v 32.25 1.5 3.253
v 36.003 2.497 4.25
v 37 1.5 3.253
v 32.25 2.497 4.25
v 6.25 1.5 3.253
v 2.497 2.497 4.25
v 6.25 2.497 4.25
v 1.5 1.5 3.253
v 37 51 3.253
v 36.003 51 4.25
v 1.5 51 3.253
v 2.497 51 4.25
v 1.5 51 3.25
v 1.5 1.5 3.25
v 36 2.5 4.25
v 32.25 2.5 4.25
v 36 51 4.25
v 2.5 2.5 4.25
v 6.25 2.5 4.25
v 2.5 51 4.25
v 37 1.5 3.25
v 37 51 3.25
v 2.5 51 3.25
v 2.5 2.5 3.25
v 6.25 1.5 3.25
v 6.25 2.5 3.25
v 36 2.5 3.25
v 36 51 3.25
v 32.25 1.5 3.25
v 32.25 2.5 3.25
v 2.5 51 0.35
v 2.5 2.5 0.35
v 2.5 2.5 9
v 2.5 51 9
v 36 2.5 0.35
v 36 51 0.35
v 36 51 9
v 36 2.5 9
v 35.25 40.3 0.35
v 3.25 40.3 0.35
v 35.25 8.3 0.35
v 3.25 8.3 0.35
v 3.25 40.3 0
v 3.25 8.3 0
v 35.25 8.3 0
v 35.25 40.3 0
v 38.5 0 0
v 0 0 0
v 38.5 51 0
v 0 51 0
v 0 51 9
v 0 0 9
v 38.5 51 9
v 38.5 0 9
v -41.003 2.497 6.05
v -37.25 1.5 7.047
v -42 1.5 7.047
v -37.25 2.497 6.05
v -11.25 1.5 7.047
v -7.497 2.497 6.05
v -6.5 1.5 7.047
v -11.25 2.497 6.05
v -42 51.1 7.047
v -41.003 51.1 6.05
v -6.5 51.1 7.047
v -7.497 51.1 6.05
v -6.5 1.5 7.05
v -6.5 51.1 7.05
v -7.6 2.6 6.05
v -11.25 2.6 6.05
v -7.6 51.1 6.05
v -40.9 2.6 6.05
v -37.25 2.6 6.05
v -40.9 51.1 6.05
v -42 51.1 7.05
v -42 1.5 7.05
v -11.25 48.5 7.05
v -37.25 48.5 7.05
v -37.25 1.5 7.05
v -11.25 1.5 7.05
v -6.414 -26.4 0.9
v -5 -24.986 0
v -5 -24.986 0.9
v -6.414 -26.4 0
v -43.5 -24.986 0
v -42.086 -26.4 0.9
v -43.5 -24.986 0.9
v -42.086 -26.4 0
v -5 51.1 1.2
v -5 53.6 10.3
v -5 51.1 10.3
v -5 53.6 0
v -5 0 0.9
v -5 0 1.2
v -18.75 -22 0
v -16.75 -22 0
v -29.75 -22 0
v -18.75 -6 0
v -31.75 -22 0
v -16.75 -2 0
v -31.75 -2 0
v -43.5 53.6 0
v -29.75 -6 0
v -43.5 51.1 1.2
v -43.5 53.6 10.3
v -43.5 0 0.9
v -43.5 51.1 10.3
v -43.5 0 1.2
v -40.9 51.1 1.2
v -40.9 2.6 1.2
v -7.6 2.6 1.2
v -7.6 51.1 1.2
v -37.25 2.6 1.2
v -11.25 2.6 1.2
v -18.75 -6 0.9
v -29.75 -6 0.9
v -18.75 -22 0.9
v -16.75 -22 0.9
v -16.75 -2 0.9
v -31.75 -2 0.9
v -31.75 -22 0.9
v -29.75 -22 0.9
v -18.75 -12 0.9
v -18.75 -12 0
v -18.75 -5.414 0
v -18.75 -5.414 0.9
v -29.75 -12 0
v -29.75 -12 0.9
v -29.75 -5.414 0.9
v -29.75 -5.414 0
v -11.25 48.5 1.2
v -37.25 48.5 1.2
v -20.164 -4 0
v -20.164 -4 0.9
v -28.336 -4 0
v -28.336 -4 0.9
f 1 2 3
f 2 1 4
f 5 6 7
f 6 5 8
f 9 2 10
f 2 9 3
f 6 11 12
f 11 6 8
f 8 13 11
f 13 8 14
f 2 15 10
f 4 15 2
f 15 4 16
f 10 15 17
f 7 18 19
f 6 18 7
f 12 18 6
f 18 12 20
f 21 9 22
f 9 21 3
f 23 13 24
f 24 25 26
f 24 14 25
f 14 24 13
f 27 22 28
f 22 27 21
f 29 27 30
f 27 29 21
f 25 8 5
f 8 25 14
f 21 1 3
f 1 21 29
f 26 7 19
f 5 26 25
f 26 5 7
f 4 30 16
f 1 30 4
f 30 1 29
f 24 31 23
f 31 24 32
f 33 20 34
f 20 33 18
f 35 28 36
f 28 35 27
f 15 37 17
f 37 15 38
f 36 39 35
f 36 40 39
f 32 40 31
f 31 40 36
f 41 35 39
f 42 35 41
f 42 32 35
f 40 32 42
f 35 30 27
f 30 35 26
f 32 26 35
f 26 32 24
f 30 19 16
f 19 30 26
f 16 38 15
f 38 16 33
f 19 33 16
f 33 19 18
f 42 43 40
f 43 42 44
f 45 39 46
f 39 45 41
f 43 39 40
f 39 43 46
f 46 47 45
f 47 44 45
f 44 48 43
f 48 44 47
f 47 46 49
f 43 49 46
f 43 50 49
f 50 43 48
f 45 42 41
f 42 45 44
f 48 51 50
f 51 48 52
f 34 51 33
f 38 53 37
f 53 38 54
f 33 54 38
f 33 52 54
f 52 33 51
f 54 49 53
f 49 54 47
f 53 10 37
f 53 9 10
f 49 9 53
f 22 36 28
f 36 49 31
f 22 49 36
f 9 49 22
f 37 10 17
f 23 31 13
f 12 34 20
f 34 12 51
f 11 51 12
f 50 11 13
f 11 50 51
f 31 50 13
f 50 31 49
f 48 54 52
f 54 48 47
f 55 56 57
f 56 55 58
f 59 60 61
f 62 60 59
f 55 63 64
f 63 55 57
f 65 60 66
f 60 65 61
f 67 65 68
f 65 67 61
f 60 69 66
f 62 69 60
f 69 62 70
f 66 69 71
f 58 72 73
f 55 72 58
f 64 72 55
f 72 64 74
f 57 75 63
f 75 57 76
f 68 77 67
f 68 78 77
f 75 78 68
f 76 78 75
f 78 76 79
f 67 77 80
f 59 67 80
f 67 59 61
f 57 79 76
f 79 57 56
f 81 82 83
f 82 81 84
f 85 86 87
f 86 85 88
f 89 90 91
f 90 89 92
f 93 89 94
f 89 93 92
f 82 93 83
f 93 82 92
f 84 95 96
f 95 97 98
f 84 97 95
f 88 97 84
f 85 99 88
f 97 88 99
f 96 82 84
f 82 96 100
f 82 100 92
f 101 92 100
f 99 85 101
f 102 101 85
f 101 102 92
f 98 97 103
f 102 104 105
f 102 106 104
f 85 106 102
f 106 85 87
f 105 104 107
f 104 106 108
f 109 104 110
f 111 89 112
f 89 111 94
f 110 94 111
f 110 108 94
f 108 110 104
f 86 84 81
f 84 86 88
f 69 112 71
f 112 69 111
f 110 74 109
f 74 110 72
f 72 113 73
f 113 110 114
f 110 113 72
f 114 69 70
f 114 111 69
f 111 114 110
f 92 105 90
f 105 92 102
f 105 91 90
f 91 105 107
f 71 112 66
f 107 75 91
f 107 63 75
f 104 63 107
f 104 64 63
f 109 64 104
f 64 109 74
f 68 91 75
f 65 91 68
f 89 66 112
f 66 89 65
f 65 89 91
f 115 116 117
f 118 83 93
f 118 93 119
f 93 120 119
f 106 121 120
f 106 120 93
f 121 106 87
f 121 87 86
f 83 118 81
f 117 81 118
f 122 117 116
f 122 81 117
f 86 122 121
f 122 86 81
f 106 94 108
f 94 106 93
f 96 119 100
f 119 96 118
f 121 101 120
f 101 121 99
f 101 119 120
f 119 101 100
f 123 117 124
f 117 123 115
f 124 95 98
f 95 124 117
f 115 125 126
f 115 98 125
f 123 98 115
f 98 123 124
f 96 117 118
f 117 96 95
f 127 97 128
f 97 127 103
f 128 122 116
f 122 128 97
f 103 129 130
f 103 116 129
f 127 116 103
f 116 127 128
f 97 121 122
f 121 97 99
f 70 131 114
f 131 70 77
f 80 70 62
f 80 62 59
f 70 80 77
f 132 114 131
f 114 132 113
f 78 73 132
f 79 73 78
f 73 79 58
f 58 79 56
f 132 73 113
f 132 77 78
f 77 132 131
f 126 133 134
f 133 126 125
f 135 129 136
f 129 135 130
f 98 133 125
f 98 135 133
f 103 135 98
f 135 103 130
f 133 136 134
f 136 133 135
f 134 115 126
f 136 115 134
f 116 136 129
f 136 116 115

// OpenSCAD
// file: Cubo.scad
// -----------------
// module cubo
// GPL v2.0
// yvoz.lg@gmail.com
// -----------------

cubo([10,10,5], [1,2,3,4,5,6,7,8,9,10,11,12], 1.5);

translate([15, 0, 0]){
	difference(){
		cubo([10,20,5], [2,3], 3);
		translate([5,10,-1]) cylinder(r=2, h=7, $fn=12);
	}
}

translate([-15, 0, 0]){
	difference(){
		cube([10,20,15]);
		translate([3,3,3]) cubo([10,20,50], [1,5], 3);
	}
}

module cubo(dim, cro, a){

	diago = sqrt(pow(a,2)+pow(a,2));
	difference(){
		cube(dim);
		
		for(i=cro){
			//x
			if(i==1){
				translate([-1, 0, -diago/2])
				rotate([45, 0, 0])
				cube([dim.x+2, a, a]);
			}
			if(i==2){
				translate([-1, 0, dim.z-diago/2])
				rotate([45, 0, 0])
				cube([dim.x+2, a, a]);
			}
			if(i==3){
				translate([-1, dim.y, dim.z-diago/2])
				rotate([45, 0, 0])
				cube([dim.x+2, a, a]);
			}
			if(i==4){
				translate([-1, dim.y, -diago/2])
				rotate([45, 0, 0])
				cube([dim.x+2, a, a]);
			}
			//y
			if(i==5){
				translate([-diago/2, -1, 0])
				rotate([0, 45, 0])
				cube([a, dim.y+2, a]);
			}
			if(i==6){
				translate([dim.x-diago/2, -1, 0])
				rotate([0, 45, 0])
				cube([a, dim.y+2, a]);
			}
			if(i==7){
				translate([dim.x-diago/2, -1, dim.z])
				rotate([0, 45, 0])
				cube([a, dim.y+2, a]);
			}
			if(i==8){
				translate([-diago/2, -1, dim.z])
				rotate([0, 45, 0])
				cube([a, dim.y+2, a]);
			}
			//z
			if(i==9){
				translate([0, -diago/2, -1])
				rotate([0, 0, 45])
				cube([a, a, dim.z+2]);
			}
			if(i==10){
				translate([0, dim.y-diago/2, -1])
				rotate([0, 0, 45])
				cube([a, a, dim.z+2]);
			}
			if(i==11){
				translate([dim.x, dim.y-diago/2, -1])
				rotate([0, 0, 45])
				cube([a, a, dim.z+2]);
			}
			if(i==12){
				translate([dim.x, -diago/2, -1])
				rotate([0, 0, 45])
				cube([a, a, dim.z+2]);
			}
		}
	}
}
// main file
/*
**  ePaperBox
*/

ssw = 32.0;       // Screen Size Width
bsw = 33.5;       // Board Size Width
bsh = 48.5;       // Board Size Height
fst = 0.35;       // Front Side Thikness
tss = 5.8;        // Top Side Screen
wt = 2.5;         // Wall Thickness
ot = 9.0;         // Overall Thickness
ra = 1.0;         // Rail
sbt = 2.9;        // Screen + Board Thickness
j = 0.1;          // Adjustment clearance
bt = 1.2;         // Back Thikness
ht = 0.9;         // Holder Thickness
mh = 80.0;        // Max Height (with holder)
fw = 15.0;        // Finger Width
fc = 2.0;         // Finger Cut
fl = 20.0;        // Finger Length
fh = 6.0;         // Finger Top
ew = 26.0;        // Electronic Width

use<Cubo.scad>;

module frontSide () {
  difference() {
    union() {
      cube([bsw+wt*2, bsh+wt, ot]);
    }
    union() {
      translate([wt, wt, fst]) cube([bsw, bsh*2, ot]);
      translate([wt+(bsw-ssw)/2, wt+tss, 0]) cube([ssw, ssw, ot]);
      backSide();
    }
  }
}

module backSide() {
  difference() {
    union() {
      // Bevel
      translate([wt-ra, wt-ra, fst+sbt]) cubo([bsw+ra*2, bsh*2, ra], [2,7,8], ra*1.41);
      // Filling
      translate([wt+j, wt+j, fst+sbt+ra]) cube([bsw-j*2, bsh*2, ot-sbt-ra+bt-fst+j]);
      // Back
      translate([0, bsh+wt*2+j-mh, ot+j]) cubo([bsw+wt*2, mh, bt], [9,12], 2);
      // fermeture
      translate([0, bsh+wt+j, 0]) cube([bsw+wt*2, wt, ot+j+bt]);
    }
    union() {
      // To refine the clip
      translate([0, -mh, 0]) cube([bsw+wt*2, mh, ot+j+bt-ht]);
      // To cut out what's overflowing
      translate([0, bsh+wt*2+j, 0]) cube([mh, mh, mh]);
      // Finger Slot
      translate([(bsw+wt*2-fw)/2, -fh, bt*2]) cube([fw, fc*2, ot]);
      translate([(bsw+wt*2-fw)/2, -fh-fl+fc*2, bt*2]) cube([fc, fl, ot]);
      translate([(bsw+wt*2+fw)/2-fc, -fh-fl+fc*2, bt*2]) cube([fc, fl, ot]);
      // Place for electronics
      translate([(bsw+wt*2-ew)/2, 0, 0]) cube([ew, bsh, sbt+ra+ot-sbt-ra+j]);
    }
  }
  // Finger
  translate([(bsw+wt*2-fw)/2+fc, -fh-fc*3, ot+j+bt-ht]) cubo([fw-fc*2, fc*4, ht], [10,11], 2);
}


module All() {
  frontSide();
  translate([-5, 0, ot+j+bt]) rotate([0, 180, 0]) backSide();
}

All();
//backSide();
